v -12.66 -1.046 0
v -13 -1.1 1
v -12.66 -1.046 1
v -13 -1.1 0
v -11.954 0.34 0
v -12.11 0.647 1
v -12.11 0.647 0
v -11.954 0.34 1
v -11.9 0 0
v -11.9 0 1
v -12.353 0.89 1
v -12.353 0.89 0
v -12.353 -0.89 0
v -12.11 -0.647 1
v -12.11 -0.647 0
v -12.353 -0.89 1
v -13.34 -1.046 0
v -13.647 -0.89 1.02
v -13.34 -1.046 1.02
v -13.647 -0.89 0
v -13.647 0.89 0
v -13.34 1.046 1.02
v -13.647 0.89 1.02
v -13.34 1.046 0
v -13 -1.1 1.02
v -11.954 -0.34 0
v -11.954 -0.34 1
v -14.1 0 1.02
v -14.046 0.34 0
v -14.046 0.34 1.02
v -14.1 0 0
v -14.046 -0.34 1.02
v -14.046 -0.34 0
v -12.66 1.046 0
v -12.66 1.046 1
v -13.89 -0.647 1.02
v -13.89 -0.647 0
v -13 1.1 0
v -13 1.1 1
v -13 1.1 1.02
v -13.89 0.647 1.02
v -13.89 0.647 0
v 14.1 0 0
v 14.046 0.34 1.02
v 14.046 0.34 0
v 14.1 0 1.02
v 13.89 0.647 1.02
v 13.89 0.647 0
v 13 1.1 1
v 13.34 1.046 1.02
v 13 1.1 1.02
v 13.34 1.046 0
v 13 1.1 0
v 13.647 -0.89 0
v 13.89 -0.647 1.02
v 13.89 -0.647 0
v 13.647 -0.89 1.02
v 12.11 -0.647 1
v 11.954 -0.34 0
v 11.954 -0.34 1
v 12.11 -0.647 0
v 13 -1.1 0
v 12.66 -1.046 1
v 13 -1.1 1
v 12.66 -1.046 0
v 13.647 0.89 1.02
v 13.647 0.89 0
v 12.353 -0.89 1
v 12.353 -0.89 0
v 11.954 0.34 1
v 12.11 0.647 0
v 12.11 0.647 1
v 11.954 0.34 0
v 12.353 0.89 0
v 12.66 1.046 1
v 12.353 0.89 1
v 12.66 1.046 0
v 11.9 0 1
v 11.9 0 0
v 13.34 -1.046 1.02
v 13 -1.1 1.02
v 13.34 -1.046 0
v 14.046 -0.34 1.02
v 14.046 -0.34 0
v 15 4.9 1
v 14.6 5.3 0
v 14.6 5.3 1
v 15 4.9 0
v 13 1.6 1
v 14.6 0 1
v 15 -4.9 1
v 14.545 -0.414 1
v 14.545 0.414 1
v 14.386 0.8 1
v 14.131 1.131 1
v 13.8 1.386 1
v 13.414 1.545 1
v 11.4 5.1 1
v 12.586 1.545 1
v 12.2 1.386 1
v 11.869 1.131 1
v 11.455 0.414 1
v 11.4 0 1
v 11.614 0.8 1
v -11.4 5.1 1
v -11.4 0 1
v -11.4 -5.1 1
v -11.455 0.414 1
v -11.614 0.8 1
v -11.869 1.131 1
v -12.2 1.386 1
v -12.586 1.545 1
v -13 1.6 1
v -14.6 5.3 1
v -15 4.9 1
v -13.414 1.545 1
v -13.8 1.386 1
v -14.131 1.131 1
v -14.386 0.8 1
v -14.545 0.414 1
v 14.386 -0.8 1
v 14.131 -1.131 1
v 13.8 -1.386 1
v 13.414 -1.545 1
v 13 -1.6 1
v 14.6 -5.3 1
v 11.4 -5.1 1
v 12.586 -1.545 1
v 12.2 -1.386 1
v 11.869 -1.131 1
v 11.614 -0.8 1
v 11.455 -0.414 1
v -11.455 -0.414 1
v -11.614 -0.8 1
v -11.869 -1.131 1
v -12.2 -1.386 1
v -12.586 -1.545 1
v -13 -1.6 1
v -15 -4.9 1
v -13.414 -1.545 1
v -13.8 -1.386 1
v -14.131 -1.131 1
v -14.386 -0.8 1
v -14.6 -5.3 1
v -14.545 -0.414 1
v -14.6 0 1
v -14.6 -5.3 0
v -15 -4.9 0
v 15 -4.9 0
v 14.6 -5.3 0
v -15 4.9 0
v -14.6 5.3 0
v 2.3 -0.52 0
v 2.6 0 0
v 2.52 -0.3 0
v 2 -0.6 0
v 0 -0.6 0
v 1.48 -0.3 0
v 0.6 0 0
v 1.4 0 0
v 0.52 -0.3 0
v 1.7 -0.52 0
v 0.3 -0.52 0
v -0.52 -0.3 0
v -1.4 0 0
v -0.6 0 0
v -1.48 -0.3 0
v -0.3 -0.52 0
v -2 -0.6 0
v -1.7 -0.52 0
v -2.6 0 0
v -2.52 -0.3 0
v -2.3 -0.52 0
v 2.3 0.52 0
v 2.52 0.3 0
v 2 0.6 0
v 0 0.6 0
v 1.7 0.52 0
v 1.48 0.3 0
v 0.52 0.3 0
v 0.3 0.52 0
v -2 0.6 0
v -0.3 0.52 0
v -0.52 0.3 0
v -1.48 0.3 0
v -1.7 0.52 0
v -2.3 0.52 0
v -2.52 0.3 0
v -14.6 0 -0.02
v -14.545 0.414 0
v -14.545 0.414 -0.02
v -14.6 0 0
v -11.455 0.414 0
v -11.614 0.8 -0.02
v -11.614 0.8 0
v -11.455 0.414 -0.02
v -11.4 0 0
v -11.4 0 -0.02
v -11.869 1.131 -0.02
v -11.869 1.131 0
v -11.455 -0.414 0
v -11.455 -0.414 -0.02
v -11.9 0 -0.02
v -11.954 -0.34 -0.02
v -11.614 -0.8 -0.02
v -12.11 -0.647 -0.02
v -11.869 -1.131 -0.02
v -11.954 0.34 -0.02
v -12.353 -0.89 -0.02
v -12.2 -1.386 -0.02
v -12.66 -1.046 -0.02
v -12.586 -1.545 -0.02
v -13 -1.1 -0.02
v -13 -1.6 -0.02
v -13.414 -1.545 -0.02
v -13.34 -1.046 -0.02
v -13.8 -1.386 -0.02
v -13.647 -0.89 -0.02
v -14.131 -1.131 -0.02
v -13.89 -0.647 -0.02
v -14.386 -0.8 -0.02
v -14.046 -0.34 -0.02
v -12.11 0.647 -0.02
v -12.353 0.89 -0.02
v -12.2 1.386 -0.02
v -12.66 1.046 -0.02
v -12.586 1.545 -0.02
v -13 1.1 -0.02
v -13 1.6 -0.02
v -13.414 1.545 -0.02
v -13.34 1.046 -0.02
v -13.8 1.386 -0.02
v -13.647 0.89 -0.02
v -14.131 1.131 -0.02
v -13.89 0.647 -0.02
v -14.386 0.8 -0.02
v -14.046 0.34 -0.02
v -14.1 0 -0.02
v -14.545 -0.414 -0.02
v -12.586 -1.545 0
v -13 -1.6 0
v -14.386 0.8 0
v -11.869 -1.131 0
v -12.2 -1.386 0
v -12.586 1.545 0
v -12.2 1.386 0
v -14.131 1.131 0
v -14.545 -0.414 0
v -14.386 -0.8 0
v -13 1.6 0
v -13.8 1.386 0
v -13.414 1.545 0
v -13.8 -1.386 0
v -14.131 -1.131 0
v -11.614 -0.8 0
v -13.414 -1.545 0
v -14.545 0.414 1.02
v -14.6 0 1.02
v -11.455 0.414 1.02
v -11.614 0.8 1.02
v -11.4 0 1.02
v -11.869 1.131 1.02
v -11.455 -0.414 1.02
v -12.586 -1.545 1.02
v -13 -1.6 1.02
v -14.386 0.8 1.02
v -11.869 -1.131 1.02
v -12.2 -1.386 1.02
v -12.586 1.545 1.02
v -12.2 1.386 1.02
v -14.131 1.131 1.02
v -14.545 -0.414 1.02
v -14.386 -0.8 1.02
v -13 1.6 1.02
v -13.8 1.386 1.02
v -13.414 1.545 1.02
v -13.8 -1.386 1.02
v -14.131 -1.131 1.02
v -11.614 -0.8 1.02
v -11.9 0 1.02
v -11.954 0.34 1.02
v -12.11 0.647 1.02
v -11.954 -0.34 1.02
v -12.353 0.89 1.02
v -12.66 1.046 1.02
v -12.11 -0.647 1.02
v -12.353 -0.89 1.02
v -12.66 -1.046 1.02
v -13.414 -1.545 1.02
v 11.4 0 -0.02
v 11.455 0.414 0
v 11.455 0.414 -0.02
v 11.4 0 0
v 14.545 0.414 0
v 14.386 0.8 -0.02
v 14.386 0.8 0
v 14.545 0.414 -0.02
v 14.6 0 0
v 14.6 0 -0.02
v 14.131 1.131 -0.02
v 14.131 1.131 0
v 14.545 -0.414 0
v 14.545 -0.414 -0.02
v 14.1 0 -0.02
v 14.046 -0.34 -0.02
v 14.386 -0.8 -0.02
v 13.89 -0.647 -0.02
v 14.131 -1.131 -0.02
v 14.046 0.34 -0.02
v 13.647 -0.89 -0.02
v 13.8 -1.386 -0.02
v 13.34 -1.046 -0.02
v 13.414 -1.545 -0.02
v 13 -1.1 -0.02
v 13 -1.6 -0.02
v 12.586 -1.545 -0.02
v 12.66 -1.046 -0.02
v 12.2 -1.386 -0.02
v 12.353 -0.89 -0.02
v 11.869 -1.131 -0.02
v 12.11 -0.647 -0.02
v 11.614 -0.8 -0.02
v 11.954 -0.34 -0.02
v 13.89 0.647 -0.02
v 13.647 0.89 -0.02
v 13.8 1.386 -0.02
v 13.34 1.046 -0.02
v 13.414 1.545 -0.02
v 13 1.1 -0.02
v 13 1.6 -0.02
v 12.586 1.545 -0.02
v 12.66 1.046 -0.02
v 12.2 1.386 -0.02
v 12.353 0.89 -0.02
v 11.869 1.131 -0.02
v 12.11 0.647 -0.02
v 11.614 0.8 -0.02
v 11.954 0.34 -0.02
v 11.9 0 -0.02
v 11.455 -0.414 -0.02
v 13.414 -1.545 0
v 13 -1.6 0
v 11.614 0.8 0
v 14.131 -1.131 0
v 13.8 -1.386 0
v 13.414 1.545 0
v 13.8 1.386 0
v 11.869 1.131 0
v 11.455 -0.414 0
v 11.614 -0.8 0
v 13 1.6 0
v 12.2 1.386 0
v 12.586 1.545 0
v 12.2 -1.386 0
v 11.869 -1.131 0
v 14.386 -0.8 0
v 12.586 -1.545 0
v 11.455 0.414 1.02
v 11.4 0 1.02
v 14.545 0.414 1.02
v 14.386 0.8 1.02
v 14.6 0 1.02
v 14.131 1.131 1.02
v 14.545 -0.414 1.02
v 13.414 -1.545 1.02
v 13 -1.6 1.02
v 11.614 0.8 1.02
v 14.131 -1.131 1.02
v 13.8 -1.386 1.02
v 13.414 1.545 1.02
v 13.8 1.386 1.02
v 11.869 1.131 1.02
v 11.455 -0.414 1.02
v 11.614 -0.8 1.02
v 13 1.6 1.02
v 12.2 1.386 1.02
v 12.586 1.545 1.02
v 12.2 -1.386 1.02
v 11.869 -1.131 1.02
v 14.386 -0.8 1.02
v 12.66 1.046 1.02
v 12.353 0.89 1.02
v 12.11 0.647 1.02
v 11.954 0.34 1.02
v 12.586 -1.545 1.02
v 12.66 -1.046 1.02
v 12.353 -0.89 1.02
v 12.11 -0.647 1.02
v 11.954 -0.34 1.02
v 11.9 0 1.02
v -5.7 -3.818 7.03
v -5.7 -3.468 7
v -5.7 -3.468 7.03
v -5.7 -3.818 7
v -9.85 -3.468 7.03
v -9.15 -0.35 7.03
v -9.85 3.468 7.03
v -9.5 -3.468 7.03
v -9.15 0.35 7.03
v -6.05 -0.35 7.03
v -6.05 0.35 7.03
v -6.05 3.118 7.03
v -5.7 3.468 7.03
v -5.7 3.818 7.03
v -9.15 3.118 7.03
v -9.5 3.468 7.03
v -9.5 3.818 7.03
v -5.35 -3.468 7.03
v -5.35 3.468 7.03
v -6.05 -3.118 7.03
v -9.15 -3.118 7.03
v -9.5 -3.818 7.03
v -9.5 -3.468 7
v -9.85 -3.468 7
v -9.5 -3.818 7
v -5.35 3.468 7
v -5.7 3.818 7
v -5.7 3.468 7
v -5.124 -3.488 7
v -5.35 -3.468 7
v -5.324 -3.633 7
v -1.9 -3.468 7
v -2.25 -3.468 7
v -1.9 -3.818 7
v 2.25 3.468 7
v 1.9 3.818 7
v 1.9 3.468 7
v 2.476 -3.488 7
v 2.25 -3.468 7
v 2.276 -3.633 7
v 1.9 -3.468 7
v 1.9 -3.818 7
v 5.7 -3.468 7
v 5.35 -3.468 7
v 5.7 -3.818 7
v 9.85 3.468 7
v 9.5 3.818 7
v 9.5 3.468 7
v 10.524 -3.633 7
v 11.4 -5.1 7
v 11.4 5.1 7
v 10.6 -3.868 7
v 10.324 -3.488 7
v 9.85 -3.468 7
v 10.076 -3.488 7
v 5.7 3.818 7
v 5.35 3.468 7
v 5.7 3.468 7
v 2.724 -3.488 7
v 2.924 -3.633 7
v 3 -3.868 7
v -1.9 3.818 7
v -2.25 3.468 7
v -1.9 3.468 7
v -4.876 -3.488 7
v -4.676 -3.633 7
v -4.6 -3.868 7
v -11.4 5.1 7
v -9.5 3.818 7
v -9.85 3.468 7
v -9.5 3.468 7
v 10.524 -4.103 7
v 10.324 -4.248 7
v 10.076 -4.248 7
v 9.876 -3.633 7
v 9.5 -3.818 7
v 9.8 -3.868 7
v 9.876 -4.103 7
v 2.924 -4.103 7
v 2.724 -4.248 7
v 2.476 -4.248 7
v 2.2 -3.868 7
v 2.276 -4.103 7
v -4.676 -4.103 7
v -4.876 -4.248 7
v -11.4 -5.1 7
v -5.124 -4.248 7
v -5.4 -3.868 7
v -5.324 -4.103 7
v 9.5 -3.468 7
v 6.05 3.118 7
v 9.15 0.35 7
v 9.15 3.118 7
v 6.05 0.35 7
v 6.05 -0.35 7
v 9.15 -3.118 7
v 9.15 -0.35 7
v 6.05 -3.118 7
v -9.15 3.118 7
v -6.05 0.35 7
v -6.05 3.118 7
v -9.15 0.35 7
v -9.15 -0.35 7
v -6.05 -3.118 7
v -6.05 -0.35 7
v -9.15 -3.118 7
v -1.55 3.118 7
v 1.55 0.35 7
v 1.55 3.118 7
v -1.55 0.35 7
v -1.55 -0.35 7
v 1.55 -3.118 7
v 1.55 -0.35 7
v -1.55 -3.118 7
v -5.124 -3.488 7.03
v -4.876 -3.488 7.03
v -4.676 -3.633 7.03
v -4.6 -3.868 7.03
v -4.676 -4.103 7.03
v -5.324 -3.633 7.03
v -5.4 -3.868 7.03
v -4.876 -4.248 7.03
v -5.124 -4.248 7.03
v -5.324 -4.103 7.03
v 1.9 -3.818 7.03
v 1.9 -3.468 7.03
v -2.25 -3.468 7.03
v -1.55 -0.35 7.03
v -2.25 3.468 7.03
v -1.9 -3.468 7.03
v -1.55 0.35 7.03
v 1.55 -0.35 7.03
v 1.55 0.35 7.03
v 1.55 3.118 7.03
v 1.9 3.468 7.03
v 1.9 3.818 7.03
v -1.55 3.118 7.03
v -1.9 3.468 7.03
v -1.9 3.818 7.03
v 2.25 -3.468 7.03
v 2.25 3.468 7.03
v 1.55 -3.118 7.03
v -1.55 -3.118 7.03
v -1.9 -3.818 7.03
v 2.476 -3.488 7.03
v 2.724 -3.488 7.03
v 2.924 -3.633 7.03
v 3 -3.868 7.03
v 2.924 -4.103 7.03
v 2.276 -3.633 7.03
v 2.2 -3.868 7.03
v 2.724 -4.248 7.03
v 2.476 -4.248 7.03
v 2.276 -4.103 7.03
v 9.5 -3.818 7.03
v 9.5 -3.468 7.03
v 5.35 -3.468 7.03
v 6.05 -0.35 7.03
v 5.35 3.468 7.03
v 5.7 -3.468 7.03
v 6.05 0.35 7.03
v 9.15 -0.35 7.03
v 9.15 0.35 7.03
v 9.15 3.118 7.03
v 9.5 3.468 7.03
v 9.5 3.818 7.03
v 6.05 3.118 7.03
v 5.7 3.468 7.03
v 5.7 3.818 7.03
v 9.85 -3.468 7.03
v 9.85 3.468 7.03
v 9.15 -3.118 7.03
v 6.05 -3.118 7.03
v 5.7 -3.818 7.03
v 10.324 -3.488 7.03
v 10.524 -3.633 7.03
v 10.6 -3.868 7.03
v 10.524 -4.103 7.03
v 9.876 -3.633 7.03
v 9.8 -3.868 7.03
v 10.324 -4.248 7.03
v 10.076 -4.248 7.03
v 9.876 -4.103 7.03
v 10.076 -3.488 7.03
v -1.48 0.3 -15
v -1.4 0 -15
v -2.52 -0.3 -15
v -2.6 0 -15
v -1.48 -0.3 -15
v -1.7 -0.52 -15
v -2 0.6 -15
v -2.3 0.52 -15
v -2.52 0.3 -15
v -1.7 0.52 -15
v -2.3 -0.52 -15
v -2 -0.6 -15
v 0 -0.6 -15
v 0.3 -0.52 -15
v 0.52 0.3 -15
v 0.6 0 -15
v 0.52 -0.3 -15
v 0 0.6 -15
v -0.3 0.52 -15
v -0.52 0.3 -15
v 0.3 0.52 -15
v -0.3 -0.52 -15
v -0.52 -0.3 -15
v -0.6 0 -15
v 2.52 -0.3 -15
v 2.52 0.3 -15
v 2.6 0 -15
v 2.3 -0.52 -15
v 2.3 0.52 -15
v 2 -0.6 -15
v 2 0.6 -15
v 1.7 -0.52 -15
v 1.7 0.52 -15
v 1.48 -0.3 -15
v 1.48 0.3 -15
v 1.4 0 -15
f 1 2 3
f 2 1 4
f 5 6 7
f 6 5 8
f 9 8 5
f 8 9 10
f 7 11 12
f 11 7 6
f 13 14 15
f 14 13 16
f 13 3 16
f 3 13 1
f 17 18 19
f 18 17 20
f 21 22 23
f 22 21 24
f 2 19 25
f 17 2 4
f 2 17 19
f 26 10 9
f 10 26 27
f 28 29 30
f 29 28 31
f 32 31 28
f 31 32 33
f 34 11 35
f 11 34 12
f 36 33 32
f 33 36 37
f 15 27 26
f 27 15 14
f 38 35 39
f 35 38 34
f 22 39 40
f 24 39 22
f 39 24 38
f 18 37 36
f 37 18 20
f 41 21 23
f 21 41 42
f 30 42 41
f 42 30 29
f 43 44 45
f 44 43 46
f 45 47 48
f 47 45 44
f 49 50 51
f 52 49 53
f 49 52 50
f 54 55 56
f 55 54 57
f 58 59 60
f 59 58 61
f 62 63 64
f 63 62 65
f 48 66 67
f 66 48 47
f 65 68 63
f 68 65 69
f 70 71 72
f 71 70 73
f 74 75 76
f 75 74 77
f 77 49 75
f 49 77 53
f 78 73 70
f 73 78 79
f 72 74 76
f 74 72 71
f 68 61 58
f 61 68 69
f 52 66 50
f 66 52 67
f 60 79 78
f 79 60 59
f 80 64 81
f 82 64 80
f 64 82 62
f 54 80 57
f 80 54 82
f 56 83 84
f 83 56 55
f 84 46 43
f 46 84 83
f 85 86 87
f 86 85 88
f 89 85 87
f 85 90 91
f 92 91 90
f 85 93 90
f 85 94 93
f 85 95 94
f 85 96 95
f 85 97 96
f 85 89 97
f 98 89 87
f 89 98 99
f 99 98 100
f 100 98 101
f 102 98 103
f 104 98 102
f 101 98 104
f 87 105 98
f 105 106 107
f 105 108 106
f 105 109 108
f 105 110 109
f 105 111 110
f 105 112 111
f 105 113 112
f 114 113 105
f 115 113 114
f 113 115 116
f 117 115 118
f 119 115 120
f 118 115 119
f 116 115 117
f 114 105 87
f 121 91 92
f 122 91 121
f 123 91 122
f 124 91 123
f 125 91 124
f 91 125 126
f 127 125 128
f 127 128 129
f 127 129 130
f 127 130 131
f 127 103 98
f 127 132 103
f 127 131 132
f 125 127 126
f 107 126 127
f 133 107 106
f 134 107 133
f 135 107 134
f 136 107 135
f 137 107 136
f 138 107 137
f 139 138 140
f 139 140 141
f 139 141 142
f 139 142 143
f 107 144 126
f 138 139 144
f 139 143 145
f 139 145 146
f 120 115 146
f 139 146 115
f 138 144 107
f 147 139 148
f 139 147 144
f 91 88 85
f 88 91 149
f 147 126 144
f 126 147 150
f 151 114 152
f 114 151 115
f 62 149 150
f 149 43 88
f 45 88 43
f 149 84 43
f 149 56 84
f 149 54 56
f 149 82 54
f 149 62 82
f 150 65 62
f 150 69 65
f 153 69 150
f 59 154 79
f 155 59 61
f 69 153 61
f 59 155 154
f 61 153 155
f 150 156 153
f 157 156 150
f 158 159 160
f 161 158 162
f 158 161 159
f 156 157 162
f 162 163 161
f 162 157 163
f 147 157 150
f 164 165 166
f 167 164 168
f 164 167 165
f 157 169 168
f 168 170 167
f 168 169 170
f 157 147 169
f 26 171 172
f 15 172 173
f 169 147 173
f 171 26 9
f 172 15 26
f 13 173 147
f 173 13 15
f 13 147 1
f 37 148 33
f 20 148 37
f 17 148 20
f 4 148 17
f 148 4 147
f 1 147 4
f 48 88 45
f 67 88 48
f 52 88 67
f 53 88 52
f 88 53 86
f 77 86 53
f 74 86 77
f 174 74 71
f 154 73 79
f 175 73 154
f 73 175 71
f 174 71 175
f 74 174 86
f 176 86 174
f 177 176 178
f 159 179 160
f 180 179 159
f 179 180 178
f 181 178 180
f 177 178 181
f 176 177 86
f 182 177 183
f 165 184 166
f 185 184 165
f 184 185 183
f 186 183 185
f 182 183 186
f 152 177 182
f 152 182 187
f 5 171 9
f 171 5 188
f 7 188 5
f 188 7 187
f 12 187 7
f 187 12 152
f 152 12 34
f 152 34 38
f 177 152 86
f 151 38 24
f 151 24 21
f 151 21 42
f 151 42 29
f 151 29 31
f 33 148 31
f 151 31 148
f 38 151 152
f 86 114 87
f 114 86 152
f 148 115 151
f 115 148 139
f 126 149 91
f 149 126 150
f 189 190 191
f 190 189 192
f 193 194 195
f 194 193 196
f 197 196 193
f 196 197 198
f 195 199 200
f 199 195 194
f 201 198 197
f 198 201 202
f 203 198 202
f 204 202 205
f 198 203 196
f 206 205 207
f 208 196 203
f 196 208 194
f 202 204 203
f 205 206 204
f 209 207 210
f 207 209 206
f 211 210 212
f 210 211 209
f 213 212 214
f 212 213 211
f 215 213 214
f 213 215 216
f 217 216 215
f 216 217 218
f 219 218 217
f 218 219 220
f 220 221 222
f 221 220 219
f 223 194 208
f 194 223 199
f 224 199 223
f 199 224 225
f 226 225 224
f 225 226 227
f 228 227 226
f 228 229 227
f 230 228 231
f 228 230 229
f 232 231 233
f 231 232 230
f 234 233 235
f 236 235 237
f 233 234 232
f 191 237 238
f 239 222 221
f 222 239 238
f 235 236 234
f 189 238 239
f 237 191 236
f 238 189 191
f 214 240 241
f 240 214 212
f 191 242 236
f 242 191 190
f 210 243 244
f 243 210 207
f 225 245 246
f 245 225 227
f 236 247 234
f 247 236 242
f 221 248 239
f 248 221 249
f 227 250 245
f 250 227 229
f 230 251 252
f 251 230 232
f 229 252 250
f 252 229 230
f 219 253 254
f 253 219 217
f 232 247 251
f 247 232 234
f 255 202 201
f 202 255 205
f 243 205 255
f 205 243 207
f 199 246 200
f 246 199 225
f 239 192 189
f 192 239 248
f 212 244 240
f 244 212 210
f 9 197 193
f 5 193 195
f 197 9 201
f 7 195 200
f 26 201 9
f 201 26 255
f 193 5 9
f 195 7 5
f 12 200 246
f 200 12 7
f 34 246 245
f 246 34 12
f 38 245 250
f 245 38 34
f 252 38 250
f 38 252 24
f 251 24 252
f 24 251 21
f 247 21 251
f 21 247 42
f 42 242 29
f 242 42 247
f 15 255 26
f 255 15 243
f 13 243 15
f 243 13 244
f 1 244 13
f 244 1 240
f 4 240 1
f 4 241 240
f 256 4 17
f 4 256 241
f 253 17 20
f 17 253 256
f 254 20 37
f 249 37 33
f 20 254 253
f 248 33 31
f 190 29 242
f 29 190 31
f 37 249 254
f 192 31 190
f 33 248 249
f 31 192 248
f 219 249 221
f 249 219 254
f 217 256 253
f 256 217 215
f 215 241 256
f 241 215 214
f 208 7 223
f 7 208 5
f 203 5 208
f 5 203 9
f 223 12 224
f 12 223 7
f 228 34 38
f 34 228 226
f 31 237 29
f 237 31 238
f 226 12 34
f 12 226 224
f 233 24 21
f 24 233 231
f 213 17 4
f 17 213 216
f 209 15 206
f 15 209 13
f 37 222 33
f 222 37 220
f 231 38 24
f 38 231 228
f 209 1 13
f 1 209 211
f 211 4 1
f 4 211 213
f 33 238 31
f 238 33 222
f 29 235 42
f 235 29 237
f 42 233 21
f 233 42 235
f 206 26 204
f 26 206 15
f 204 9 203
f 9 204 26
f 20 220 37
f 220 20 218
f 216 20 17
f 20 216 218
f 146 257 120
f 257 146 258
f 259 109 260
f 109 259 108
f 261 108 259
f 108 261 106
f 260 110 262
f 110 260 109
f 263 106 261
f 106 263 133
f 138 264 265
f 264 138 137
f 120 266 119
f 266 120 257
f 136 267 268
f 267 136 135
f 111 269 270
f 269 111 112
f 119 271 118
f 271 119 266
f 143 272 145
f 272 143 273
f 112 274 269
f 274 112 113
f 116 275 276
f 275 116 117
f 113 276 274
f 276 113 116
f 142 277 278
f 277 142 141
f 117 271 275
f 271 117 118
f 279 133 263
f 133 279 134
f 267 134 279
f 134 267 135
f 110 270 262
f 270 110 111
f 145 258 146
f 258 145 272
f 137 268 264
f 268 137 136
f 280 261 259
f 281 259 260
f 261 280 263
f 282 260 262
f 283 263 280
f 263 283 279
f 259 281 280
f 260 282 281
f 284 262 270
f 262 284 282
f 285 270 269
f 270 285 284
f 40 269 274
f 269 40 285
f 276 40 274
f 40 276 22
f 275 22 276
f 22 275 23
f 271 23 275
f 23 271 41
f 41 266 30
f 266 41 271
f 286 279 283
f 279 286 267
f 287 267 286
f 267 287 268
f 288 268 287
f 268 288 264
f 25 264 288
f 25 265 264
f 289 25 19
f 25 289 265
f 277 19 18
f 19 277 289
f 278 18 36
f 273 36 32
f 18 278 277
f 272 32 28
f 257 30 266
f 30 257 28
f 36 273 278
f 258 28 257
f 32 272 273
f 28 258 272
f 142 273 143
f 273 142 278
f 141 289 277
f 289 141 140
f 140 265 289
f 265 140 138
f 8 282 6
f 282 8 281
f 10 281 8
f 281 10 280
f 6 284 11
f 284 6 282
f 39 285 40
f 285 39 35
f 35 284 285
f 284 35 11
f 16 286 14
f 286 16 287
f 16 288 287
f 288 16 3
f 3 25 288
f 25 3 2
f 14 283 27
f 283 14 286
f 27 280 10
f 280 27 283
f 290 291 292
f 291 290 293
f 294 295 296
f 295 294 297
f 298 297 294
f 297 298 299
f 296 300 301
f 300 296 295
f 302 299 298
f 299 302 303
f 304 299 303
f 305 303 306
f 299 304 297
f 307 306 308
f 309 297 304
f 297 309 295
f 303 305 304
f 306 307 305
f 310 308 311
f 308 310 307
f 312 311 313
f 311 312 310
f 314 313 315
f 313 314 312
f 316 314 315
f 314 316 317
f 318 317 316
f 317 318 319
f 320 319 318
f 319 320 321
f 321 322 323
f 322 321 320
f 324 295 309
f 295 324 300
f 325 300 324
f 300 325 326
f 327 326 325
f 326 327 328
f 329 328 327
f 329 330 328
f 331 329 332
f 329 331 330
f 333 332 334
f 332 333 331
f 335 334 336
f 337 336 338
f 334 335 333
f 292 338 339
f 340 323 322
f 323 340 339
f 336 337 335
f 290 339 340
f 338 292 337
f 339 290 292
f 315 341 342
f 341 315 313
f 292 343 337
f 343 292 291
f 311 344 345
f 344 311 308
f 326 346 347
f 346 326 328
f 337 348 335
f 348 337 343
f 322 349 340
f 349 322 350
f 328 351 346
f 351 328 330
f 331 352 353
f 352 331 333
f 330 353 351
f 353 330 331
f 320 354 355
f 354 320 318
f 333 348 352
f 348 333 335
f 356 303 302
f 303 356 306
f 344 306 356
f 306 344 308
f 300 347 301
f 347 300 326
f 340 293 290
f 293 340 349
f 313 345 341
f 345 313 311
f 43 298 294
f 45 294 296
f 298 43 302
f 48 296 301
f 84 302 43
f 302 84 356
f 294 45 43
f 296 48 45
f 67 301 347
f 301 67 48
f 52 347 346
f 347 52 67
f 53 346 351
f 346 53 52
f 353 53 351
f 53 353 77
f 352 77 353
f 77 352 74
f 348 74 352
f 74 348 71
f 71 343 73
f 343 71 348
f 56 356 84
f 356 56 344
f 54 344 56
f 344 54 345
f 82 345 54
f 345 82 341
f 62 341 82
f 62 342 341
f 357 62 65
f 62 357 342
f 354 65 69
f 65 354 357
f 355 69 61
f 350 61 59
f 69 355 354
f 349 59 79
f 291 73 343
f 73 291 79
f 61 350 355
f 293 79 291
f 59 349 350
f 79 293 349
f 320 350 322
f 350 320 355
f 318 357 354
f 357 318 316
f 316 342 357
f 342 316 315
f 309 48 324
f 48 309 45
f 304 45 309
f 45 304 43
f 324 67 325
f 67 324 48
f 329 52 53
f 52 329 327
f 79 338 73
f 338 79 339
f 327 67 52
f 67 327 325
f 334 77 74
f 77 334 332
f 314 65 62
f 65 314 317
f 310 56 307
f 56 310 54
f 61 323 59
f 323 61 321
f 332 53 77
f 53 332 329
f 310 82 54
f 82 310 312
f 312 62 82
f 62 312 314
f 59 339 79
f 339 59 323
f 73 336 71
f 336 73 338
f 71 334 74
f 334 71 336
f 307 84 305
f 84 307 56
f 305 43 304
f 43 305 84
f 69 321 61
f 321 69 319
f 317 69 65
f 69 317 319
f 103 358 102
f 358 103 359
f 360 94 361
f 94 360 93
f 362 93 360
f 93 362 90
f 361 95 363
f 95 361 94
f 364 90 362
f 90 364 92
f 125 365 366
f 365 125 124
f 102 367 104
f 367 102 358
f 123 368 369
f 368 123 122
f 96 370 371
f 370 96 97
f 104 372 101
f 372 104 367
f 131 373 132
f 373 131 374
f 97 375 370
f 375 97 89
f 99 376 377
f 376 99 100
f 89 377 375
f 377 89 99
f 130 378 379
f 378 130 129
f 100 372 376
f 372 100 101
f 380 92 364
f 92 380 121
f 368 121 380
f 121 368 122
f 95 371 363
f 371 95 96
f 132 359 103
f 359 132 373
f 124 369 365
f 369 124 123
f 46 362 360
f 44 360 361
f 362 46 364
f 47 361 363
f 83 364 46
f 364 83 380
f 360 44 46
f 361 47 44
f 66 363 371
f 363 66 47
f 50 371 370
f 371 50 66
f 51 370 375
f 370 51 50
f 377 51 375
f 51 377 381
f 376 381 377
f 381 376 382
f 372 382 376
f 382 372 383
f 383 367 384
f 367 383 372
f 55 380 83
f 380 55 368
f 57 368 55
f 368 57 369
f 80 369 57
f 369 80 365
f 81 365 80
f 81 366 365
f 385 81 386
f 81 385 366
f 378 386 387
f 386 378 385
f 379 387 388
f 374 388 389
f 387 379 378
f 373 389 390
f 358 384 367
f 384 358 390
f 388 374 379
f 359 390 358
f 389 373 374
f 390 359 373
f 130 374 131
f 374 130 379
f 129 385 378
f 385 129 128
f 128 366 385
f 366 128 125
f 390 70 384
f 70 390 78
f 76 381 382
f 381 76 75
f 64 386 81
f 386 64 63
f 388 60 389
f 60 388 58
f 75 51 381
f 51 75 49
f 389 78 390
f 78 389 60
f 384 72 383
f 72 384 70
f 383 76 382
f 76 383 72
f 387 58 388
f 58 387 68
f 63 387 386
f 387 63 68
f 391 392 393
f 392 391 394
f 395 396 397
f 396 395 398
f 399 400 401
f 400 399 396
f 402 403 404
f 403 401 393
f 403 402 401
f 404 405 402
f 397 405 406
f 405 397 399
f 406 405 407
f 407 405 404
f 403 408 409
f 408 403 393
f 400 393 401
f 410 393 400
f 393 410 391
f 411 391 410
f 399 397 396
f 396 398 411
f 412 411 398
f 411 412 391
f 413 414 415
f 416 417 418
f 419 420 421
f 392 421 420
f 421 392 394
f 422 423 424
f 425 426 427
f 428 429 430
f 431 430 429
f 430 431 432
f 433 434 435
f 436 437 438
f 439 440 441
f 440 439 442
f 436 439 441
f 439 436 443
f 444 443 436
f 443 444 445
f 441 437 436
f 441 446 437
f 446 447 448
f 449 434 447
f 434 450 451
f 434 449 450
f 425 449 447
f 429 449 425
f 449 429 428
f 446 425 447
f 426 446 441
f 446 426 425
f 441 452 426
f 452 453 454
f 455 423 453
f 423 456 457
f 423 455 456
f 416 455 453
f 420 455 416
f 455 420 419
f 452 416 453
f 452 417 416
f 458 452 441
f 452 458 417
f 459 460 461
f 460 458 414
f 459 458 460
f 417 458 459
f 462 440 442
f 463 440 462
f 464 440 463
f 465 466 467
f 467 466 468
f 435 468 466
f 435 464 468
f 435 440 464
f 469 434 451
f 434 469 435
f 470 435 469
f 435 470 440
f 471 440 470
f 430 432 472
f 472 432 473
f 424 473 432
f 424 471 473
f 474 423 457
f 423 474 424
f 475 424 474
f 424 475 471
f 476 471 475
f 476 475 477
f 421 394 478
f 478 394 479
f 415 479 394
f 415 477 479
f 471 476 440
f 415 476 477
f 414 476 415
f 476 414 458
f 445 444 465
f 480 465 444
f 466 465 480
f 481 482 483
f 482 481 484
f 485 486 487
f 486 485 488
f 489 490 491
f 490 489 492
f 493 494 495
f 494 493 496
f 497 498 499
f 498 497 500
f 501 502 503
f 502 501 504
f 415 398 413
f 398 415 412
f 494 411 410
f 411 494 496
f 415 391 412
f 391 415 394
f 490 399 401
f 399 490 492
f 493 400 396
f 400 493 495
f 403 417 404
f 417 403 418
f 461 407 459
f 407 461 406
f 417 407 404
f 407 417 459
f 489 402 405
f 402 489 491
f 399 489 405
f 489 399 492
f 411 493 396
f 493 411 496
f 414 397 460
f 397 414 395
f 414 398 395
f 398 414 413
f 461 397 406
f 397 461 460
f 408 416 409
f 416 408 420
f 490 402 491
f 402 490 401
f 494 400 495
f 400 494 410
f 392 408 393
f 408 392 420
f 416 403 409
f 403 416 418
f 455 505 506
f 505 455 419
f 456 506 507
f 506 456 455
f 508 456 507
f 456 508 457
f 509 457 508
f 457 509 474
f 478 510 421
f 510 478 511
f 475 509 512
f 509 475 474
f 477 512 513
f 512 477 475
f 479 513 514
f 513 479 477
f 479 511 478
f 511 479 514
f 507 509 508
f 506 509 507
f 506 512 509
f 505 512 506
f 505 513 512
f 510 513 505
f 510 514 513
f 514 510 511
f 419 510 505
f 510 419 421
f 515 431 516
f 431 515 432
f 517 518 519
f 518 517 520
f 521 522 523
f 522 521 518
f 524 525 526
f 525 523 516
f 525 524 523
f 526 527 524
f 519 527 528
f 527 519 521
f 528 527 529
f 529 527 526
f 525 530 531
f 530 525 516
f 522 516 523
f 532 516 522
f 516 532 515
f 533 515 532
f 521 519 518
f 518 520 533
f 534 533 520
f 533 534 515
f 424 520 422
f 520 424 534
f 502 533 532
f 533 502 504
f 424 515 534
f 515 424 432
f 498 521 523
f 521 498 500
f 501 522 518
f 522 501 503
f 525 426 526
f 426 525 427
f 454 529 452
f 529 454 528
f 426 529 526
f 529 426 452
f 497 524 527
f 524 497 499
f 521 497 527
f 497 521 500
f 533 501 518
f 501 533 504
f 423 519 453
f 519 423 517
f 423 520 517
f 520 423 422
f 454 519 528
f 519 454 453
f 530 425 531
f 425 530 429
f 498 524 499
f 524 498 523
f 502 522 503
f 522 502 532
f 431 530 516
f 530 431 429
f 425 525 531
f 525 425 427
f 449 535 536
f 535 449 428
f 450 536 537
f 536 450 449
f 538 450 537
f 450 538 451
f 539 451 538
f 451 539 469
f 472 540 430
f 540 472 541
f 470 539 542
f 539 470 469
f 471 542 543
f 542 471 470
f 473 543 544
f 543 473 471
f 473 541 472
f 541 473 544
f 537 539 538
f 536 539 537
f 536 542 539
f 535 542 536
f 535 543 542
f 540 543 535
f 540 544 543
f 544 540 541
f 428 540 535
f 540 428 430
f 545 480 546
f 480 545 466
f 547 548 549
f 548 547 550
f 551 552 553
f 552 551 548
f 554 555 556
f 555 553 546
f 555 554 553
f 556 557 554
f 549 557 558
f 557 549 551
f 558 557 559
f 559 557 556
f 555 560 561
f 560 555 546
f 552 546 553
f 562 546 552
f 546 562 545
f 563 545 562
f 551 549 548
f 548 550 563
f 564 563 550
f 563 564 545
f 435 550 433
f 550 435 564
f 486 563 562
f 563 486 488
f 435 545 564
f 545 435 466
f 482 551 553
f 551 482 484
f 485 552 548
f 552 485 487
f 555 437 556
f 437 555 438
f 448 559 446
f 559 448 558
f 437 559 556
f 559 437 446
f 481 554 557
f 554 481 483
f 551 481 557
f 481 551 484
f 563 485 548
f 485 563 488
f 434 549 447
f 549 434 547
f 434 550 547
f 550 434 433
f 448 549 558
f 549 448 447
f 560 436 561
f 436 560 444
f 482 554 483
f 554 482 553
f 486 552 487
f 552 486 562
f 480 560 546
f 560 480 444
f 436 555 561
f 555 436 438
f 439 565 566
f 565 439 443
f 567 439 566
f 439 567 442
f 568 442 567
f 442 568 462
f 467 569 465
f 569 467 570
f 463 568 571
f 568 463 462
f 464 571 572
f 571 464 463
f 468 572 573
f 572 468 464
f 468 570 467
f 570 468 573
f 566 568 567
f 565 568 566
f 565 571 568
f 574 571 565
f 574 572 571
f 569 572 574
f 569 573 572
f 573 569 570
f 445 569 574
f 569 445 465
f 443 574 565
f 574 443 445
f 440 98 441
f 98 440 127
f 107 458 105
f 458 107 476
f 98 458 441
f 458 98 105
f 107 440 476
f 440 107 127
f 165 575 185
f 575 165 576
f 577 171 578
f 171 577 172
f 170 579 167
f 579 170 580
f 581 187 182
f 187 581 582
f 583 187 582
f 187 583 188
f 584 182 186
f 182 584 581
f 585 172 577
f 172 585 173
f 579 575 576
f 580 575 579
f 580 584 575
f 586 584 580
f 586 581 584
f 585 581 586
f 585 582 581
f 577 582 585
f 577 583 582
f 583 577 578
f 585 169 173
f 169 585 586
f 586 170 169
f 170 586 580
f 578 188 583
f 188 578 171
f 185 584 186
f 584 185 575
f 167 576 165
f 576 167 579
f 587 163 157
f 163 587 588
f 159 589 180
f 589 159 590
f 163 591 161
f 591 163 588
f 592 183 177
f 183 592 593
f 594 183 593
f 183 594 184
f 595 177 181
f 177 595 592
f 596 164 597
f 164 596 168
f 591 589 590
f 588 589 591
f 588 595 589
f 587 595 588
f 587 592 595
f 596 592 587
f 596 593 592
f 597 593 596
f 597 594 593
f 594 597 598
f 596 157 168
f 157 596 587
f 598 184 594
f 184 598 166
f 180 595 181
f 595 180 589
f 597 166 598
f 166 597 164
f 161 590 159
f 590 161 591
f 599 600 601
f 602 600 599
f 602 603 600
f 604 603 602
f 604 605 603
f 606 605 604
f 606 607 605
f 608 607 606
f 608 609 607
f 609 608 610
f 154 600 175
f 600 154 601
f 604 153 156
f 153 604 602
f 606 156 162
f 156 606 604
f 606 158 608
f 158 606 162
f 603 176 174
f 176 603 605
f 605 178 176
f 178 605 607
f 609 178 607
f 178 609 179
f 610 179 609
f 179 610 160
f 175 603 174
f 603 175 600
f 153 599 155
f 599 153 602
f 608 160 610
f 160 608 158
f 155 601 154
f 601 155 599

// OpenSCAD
// file: ../../lib/display.scad
// partbin - shared pieces for display modules: glass panels, LED matrix
// blocks, 7-segment displays, the LCD1602 frame, a window cutout for the
// case and a holder that grips a board by its edges.
//
//   use <../lib/display.scad>
//
// Same convention as every module: parts up (the display faces +z), the
// board centred on x/y, its underside at z = 0.

use <parts.scad>

function c_glass() = [0.04, 0.04, 0.06];
function c_screen() = [0.08, 0.10, 0.16];

// ------------------------------------------------------------ glass panel
// A TFT/OLED glass panel lying on the board: outline [x, y], thickness t,
// with the active (lit) area [x, y] centred at `off` from the panel centre.
module glass_panel(outline, t = 2.4, active, off = [0, 0]) {
    color(c_glass()) translate([-outline[0] / 2, -outline[1] / 2, 0]) cube([outline[0], outline[1], t]);
    color(c_screen()) translate([off[0] - active[0] / 2, off[1] - active[1] / 2, t]) cube([active[0], active[1], 0.02]);
}

// ------------------------------------------------------------- LED matrix
// An 8 x 8 LED matrix block (1088AS-style): `size` square, h tall, with
// the 64 round LEDs on top.
module led_matrix(size = 32, h = 7, led = [0.55, 0.06, 0.06], body = [0.12, 0.12, 0.12]) {
    p = size / 8;
    color(body) translate([-size / 2, -size / 2, 0]) cube([size, size, h]);
    color(led) for (i = [0:7], j = [0:7])
        translate([-size / 2 + p / 2 + i * p, -size / 2 + p / 2 + j * p, h]) cylinder(d = p * 0.75, h = 0.05, $fn = 16);
}

// ------------------------------------------------------- 7-segment digits
// A block of `digits` 7-segment digits, `size` [x, y], h tall.
module seg7_display(digits = 4, size = [30, 14], h = 7.2, colon = true) {
    color([0.92, 0.92, 0.92]) translate([-size[0] / 2, -size[1] / 2, 0]) cube([size[0], size[1], h - 0.05]);
    color([0.12, 0.12, 0.12]) translate([-size[0] / 2, -size[1] / 2, h - 0.05]) cube([size[0], size[1], 0.05]);
    dw = size[0] / digits;
    sh = size[1] * 0.68;  sw = dw * 0.5;  st = 0.7;
    color([0.35, 0.05, 0.05]) for (d = [0:digits - 1]) translate([-size[0] / 2 + dw * (d + 0.5), 0, h]) {
        for (y = [-1, 0, 1]) translate([-sw / 2, y * sh / 2 - st / 2, 0]) cube([sw, st, 0.03]);       // a g d
        for (x = [-1, 1], y = [-1, 1]) translate([x * sw / 2 - st / 2, y < 0 ? -sh / 2 : 0, 0]) cube([st, sh / 2, 0.03]);
        translate([sw / 2 + 0.7, -sh / 2 - 0.4, 0]) cylinder(d = 0.8, h = 0.03, $fn = 10);         // dot
    }
    if (colon) color([0.35, 0.05, 0.05]) for (y = [-1.6, 1.6]) translate([0, y, h]) cylinder(d = 0.8, h = 0.03, $fn = 10);
}

// ----------------------------------------------------------------- windows
// A rectangular window in the lid above a display. The lid's inside face is
// at z0 and it is `depth` thick; `size` [x, y] is the opening at the inside,
// and it widens outwards by `flare` mm on each side (0 = straight walls).
module rect_window(x, y, z0, depth, size, flare = 0, r = 0.5) {
    translate([x, y, z0 - 0.5]) hull() {
        linear_extrude(0.01) offset(r) offset(-r) square(size, center = true);
        translate([0, 0, depth + 1.0]) linear_extrude(0.01)
            offset(r + flare * (depth + 1) / depth) offset(-r) square(size, center = true);
    }
}

// ----------------------------------------------------------------- holder
// For boards without mounting holes: a ledge under the board's edges (`h`
// tall, so parts underneath have room), low walls around it with gaps to
// get a fingernail in, and `top` mm of wall above the board's top.
// The display is meant to be pressed against the lid from behind, so the
// walls only locate it. Add it to the case floor.
module edge_holder(size, t, h = 6, ledge = 1.5, wall = 1.2, clear = 0.3, top = 0.8) {
    x0 = size[0] / 2 + clear;  y0 = size[1] / 2 + clear;
    difference() {
        translate([-x0 - wall, -y0 - wall, -h]) cube([2 * (x0 + wall), 2 * (y0 + wall), h + t + top]);
        // room for the board
        translate([-x0, -y0, 0]) cube([2 * x0, 2 * y0, t + top + 1]);
        // room under it, inside the ledge
        translate([-x0 + ledge, -y0 + ledge, -h - 1]) cube([2 * (x0 - ledge), 2 * (y0 - ledge), h + 2]);
        // fingernail gaps in the middle of each side, down to the board's underside
        for (a = [0, 90]) rotate([0, 0, a]) {
            g = min(8, (a == 0 ? size[0] : size[1]) / 4);
            translate([-g / 2, -50, 0]) cube([g, 100, t + top + 1]);
        }
    }
}

// --------------------------------------------------------------- SD socket
// A push-push microSD socket (metal), its opening towards -y.
module microsd_socket() {
    color(c_tin()) translate([-7, -7.5, 0]) cube([14, 15, 1.8]);
    color(c_plastic()) translate([-5.5, -7.6, 0.3]) cube([11, 0.2, 1.2]);
}
// file: ../../lib/breakout.scad
// partbin - shared pieces for small breakout boards: a PCB with mounting
// holes and a row of pins, pin headers, mounts, and cutouts for sensors.
//
//   use <../lib/breakout.scad>
//
// Same convention as every module: parts up, the board centred on x/y, its
// underside at z = 0. The pin row runs along x.

use <parts.scad>

// ------------------------------------------------------------------- board
// size [x, y], t thickness, r corner radius.
// holes: [[x, y], ...] mounting holes, hole_d drill, ring_d copper ring (0 = none).
// pins: n pins, 2.54 mm apart, centred on x = pins_x, at y = pins_y.
module bo_pcb(size, t = 1.6, r = 0.5, holes = [], hole_d = 3.0, ring_d = 0,
              n = 4, pins_x = 0, pins_y = 0, color = [0.06, 0.30, 0.66]) {
    pcb(size, t, concat(
            [for (h = holes) [h[0], h[1], hole_d, ring_d]],
            [for (i = [0:n - 1]) [pins_x + (i - (n - 1) / 2) * 2.54, pins_y, 1.0, 1.7]]),
        color, r);
}

// Pin header soldered into the pin row: "down" (pins below the board, the
// usual way), "up", or "none".
module bo_headers(n, pins_x, pins_y, t, mode = "down") {
    if (mode == "down")
        translate([pins_x, pins_y, 0]) rotate([0, 0, 90]) mirror([0, 0, 1]) pin_header(n, below = t + 1.5);
    else if (mode == "up")
        translate([pins_x, pins_y, t]) rotate([0, 0, 90]) pin_header(n, below = t + 1.5);
}

// Text on the underside, readable from below.
module bo_under(x, y) translate([x, y, 0]) rotate([0, 180, 0]) children();

// -------------------------------------------------------------------- mounts
// Posts under the mounting holes, from z = -h up to the board's underside.
// style "peg": a pin goes up through the hole and the board presses on
//   (snug = how much smaller than the hole; 0.15 holds by friction).
// style "screw": a pilot hole for a self-tapping screw (screw_d).
// Add them to the case floor.
module bo_mounts(holes, hole_d, t, h = 3, style = "peg", wall = 1.4, snug = 0.15, screw_d = 0) {
    sd = screw_d > 0 ? screw_d : hole_d * 0.8;
    for (p = holes) translate([p[0], p[1], 0]) {
        difference() {
            translate([0, 0, -h]) cylinder(d = hole_d + 2 * wall, h = h, $fn = 40);
            if (style == "screw") translate([0, 0, -h + 0.8]) cylinder(d = sd, h = h, $fn = 24);
        }
        if (style == "peg") {
            pd = hole_d - snug;
            cylinder(d = pd, h = t + 0.3, $fn = 32);
            translate([0, 0, t + 0.3]) cylinder(d1 = pd, d2 = pd - 0.8, h = 0.4, $fn = 32);  // lead-in
        }
    }
}

// ------------------------------------------------------------------ cutouts
// For a sensor that looks up. The wall (or lid) above the board has its
// inside face at z0 and is `depth` thick.
//
// A round window over a light sensor, widening outwards by `flare` degrees
// so it sees a wide angle of the room.
module bo_window(x, y, z0, depth, d = 3, flare = 35) {
    translate([x, y, z0 - 0.5])
        cylinder(d1 = d, d2 = d + 2 * (depth + 1) * tan(flare), h = depth + 1.5, $fn = 40);
}

// Slots over a sensor that needs air (BME280): `area` [x, y] covered by
// slots along x, `slot` wide with `bar` between them.
module bo_vents(x, y, z0, depth, area = [8, 6], slot = 1.2, bar = 1.2) {
    n = max(1, floor((area[1] + bar) / (slot + bar)));
    span = n * slot + (n - 1) * bar;
    for (i = [0:n - 1])
        translate([x - area[0] / 2, y - span / 2 + i * (slot + bar), z0 - 0.5])
            hull() for (dx = [slot / 2, area[0] - slot / 2])
                translate([dx, slot / 2, 0]) cylinder(d = slot, h = depth + 1.5, $fn = 20);
}

// ---------------------------------------------------------------- demo scene
// The board on its mounts, standing on a piece of floor, with a piece of
// see-through lid above it holding the cutout. Used when a module file is
// opened on its own.
module bo_demo(size, mount_h, lid_z, lid_t = 2) {
    color("#d6a24a") translate([-size[0] / 2 - 3, -size[1] / 2 - 3, -mount_h - 1.6]) cube([size[0] + 6, size[1] + 6, 1.6]);
    children(0);                                        // board
    color("#d6a24a") children(1);                       // mounts
    color("#9aa3ab", 0.55) difference() {               // lid with the cutout
        translate([-size[0] / 2 - 3, -size[1] / 2 - 3, lid_z]) cube([size[0] + 6, size[1] + 6, lid_t]);
        children(2);
    }
}

// ------------------------------------------------------------- USB cutouts
// A hole for a USB socket in the wall it faces. The socket's front face is
// at `at` = [x, y], its centre `zc` above the board's underside, and it points
// in direction `rot` (0 = +y, 90 = -x, 180 = -y, 270 = +x). The wall's inside
// face is `gap` in front of the socket and it is `wall` thick. `size` is the
// socket's [width, height]; from the outside a wider recess (`plug`) leaves
// `lip` mm of wall so the cable's plug goes all the way in.
module bo_usb_cutout(at, zc, rot = 0, size = [8.94, 3.26], wall = 2, gap = 0, clear = 0.3,
                     plug = [12.4, 6.6], lip = 0.8) {
    module stadium(ww, hh) hull() for (m = [-1, 1]) translate([m * (ww - hh) / 2, 0]) circle(d = hh, $fn = 32);
    translate([at[0], at[1], zc]) rotate([0, 0, rot]) {
        translate([0, -0.5, 0]) rotate([-90, 0, 0]) linear_extrude(gap + wall + 1.5) stadium(size[0] + 2 * clear, size[1] + 2 * clear);
        if (lip < wall) translate([0, gap + lip, 0]) rotate([-90, 0, 0]) linear_extrude(wall - lip + 1) stadium(plug[0], plug[1]);
    }
}
// main file
// 0.28" 3-digit LED voltmeter, DC 0-100 V, 3 wires (red: power, yellow:
// measure, black: GND). A small green board with the display and a mounting
// ear with a hole at each end. Sold in red, green, blue and other colours.
//
//   use <partbin/modules/voltmeter_028/voltmeter_028.scad>
//
//   voltmeter_028();                     the meter (red digits)
//   voltmeter_028(seg = "green");
//   voltmeter_028_panel_cutout(wall)     the window for a front panel it sits behind
//   voltmeter_028_holder(h = 3);         two posts for its ears
//   voltmeter_028_size()                 [length with the ears, width, thickness]
//
// Where it sits: digits up, the meter centred on x = y = 0, the PCB's
// underside at z = 0, the long side along x. Typical sizes.

use <../../lib/parts.scad>
use <../../lib/breakout.scad>
use <../../lib/display.scad>

// ------------------------------------------------------------------- typical
b_l      = 30.0;    // with the ears
b_w      = 10.6;
b_t      = 1.0;
body     = [22.8, 10.2];
body_h   = 6.0;
ear_hole = [13.0, 0];
hole_d   = 2.2;

function voltmeter_028_size() = [b_l, b_w, b_t + body_h];

module voltmeter_028(seg = "red") {
    pcb([b_l, b_w], b_t, [for (s = [-1, 1]) [s * ear_hole[0], 0, hole_d, 3.2]], [0.20, 0.60, 0.30], 0.4);
    translate([0, 0, b_t]) seg7_display(3, body, body_h, false, seg7_color(seg));
    // the three wires leaving the back
    for (i = [0:2]) color(["red", "yellow", "black"][i]) translate([-2 + i * 2, 0, 0]) mirror([0, 0, 1]) cylinder(d = 1.2, h = 15, $fn = 12);
}

// The window for the digits in a front panel `wall` thick that touches the
// meter's face (or set `gap`).
module voltmeter_028_panel_cutout(wall = 2, gap = 0, margin = 0.3) {
    rect_window(0, 0, b_t + body_h + gap, wall, [body[0] + 2 * margin, body[1] + 2 * margin], 0, 0.3);
}

module voltmeter_028_holder(h = 3, style = "screw") { bo_mounts([for (s = [-1, 1]) [s * ear_hole[0], 0]], hole_d, b_t, h, style); }

show = "demo";
voltmeter_028();
